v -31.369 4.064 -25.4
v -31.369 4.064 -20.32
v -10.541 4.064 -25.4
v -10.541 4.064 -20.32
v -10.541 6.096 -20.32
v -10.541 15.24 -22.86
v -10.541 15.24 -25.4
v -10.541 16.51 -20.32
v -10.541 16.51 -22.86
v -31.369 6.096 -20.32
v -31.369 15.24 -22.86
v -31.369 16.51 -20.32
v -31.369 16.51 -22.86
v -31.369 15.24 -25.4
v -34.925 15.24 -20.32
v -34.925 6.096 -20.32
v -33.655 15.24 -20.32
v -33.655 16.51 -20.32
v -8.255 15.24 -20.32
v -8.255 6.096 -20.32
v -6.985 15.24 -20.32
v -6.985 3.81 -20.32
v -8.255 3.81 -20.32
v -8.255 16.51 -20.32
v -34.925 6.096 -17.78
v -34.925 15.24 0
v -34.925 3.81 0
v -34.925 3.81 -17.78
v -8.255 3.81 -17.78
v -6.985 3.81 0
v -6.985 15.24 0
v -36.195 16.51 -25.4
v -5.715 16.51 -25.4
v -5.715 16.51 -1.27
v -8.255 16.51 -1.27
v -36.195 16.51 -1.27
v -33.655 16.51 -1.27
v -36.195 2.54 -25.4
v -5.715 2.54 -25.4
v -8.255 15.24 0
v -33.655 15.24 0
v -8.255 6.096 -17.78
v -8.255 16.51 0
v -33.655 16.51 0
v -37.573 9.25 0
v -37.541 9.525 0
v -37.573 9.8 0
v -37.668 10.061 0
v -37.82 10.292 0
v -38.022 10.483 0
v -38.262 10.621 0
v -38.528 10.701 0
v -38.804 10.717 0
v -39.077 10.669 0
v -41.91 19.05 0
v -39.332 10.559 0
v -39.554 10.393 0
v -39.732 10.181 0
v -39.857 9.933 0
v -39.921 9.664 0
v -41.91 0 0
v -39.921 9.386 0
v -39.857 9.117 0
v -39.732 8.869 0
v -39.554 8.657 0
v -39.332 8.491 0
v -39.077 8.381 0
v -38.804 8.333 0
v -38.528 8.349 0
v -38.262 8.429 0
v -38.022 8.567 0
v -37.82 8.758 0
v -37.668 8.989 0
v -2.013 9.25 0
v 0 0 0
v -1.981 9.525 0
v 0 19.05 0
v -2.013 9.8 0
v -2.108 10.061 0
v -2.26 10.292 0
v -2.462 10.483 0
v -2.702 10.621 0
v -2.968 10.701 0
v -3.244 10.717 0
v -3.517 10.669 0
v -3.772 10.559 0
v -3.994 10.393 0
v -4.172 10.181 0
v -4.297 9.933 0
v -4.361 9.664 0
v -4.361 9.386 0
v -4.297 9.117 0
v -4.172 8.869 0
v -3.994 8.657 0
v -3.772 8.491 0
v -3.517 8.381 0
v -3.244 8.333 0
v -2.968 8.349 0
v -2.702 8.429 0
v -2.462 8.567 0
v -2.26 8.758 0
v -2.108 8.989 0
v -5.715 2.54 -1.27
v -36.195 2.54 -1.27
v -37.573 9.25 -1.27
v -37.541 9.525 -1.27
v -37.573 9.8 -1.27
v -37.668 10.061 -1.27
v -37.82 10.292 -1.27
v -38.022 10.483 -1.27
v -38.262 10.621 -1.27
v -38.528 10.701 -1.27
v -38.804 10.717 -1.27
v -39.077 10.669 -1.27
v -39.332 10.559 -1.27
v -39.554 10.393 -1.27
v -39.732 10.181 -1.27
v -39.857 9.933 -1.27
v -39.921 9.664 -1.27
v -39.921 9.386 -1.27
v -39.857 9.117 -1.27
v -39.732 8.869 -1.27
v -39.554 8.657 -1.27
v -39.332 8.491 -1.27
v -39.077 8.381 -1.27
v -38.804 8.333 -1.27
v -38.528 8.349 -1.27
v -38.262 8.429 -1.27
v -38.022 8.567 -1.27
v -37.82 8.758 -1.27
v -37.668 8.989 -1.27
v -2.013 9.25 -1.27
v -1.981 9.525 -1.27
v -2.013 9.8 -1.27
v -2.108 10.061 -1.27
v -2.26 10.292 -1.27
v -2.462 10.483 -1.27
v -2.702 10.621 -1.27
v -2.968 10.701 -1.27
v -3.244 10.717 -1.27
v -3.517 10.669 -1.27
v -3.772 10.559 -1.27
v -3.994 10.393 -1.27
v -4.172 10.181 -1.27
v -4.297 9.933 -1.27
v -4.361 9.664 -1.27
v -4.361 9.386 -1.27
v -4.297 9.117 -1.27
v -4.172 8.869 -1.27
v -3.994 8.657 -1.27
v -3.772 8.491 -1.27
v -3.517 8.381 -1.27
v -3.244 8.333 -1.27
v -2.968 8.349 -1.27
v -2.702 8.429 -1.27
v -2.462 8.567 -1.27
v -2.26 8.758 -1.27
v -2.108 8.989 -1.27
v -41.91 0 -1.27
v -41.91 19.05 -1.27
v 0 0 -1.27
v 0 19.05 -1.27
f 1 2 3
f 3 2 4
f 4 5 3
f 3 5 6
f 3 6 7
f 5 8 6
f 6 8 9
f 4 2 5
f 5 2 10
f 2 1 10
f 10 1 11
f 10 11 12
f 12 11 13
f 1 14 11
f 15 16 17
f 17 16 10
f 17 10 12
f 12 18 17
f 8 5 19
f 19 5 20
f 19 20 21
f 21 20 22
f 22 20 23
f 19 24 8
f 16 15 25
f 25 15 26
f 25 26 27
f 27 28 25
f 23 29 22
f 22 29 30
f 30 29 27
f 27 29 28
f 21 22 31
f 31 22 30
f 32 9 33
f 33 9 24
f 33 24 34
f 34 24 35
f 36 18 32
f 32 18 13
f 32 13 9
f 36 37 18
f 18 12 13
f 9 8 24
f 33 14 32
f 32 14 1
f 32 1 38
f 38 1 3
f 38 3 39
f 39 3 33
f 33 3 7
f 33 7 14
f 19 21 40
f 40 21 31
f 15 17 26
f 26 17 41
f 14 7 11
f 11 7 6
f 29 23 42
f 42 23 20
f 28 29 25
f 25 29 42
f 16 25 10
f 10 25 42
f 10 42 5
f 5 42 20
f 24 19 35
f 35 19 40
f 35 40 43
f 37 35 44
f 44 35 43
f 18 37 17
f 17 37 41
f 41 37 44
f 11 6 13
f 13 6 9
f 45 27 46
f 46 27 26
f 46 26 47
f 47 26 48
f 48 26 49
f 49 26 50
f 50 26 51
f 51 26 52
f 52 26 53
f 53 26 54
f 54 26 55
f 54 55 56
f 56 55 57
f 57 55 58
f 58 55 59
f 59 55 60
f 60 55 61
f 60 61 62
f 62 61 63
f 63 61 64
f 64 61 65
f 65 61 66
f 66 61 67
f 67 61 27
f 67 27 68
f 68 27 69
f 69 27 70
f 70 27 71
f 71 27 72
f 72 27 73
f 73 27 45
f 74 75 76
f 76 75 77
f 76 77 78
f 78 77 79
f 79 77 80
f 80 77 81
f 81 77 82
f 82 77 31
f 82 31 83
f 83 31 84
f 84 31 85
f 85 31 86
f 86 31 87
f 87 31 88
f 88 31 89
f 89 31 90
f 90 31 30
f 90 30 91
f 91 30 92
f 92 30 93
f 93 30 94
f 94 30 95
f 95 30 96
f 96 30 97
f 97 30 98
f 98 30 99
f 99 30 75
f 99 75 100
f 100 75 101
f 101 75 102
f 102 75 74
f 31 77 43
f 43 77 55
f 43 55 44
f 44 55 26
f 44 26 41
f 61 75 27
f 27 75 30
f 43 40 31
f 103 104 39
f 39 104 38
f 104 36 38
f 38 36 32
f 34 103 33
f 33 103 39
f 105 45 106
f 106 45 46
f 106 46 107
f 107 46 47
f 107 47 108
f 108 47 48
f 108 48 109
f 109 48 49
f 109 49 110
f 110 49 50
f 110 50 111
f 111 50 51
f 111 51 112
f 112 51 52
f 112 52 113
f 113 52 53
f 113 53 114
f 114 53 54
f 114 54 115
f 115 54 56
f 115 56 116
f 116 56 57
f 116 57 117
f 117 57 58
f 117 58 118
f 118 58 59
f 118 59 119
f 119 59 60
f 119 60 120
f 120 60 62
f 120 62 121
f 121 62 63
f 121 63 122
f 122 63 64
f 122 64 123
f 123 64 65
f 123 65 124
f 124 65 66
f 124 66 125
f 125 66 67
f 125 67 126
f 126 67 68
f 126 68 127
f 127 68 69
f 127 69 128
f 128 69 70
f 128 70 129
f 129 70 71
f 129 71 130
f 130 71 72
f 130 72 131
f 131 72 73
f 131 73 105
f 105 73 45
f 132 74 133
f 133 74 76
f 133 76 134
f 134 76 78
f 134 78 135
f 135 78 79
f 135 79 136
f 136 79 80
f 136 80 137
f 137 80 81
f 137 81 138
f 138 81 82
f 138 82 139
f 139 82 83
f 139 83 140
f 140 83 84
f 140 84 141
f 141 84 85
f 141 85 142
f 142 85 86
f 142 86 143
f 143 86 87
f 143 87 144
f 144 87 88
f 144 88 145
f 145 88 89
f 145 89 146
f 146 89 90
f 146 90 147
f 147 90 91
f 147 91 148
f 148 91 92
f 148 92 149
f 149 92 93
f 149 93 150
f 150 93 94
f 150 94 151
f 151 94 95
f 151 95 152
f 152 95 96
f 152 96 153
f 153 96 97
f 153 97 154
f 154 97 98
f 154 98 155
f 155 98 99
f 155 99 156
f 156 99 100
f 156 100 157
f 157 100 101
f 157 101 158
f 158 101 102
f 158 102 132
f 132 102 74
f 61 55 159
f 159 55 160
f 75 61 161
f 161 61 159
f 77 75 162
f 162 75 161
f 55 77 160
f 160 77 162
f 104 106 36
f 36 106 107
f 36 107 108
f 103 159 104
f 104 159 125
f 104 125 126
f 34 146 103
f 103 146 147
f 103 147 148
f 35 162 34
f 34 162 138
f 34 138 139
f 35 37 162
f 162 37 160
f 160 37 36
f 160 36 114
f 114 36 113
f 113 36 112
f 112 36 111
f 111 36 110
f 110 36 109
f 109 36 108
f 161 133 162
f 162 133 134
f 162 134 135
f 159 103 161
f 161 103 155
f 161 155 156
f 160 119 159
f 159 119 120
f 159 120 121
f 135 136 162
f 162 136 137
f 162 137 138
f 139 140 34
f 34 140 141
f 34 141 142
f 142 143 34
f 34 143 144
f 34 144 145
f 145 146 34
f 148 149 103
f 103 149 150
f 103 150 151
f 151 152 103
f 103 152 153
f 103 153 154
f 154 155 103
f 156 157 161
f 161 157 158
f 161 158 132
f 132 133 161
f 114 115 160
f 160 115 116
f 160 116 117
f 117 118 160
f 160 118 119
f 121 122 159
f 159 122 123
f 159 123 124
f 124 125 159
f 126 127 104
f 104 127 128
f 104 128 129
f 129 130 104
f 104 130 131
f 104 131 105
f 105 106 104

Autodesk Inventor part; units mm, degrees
ref_plane "YZ Plane" through (0, 0, 0) normal (1, 0, 0) x (0, 1, 0)
ref_plane "XZ Plane" through (0, 0, 0) normal (0, 1, 0) x (-1, 0, 0)
ref_plane "XY Plane" through (0, 0, 0) normal (0, 0, 1) x (1, 0, 0)
sketch "Sketch1" plane through (0, 0, 0) normal (0, 0, 1) x (1, 0, 0)
  line L0 (0, 0) -> (-41.91, 0)
  line L1 (-41.91, 0) -> (-41.91, 19.05)
  line L2 (-41.91, 19.05) -> (0, 19.05)
  line L3 (0, 19.05) -> (0, 0)
  circle A0 centre (-38.735, 9.525) radius 1.1938
  circle A1 centre (-3.175, 9.525) radius 1.1938
  dimension "d0" = 41.91
  dimension "d1" = 19.05
  dimension "d2" = 2.3876
  dimension "d3" = 2.3876
  dimension "d4" = 3.175
  dimension "d5" = 3.175
  dimension "d6" = 9.525
  dimension "d7" = 9.525
extrude "Extrusion1" add sketch "Sketch1" against normal blind 1.27
sketch "Sketch2" plane through (0, 0, 0) normal (0, 0, 1) x (1, 0, 0)
  line L0 (-41.91, 19.05) -> (-41.91, 0) projected
  line L1 (-36.195, 16.51) -> (-5.715, 16.51)
  line L2 (-5.715, 16.51) -> (-5.715, 2.54)
  line L3 (-5.715, 2.54) -> (-36.195, 2.54)
  line L4 (-36.195, 2.54) -> (-36.195, 16.51)
  line L5 (-41.91, 0) -> (0, 0) projected
  line L6 (0, 0) -> (0, 19.05) projected
  dimension "d31" = 13.97
  dimension "d32" = 2.54
  dimension "d33" = 30.48
  dimension "d34" = 5.715
extrude "Extrusion2" add sketch "Sketch2" against normal blind 25.4
sketch "Sketch3" plane through (0, 0, -25.4) normal (0, 0, -1) x (-1, 0, 0)
  line L0 (6.985, 15.24) -> (34.925, 15.24)
  line L1 (34.925, 15.24) -> (34.925, 3.81)
  line L2 (34.925, 3.81) -> (6.985, 3.81)
  line L3 (6.985, 3.81) -> (6.985, 15.24)
  line L4 (5.715, 16.51) -> (5.715, 2.54) projected
  line L5 (36.195, 16.51) -> (5.715, 16.51) projected
  line L6 (36.195, 2.54) -> (36.195, 16.51) projected
  line L7 (5.715, 2.54) -> (36.195, 2.54) projected
  point P0 (0, 0)
  dimension "d35" = 1.27
  dimension "d36" = 1.27
  dimension "d37" = 1.27
  dimension "d38" = 1.27
extrude "Extrusion3" cut sketch "Sketch3" against normal blind 25.4 contours L0 L1 L2 L3
sketch "Sketch4" plane through (0, 0, 0) normal (0, 0, 1) x (1, 0, 0)
  line L0 (-34.925, 15.24) -> (-6.985, 15.24) projected
  line L1 (-36.195, 16.51) -> (-5.715, 16.51) projected
  line L2 (-33.655, 15.24) -> (-8.255, 15.24)
  line L3 (-8.255, 15.24) -> (-8.255, 16.51)
  line L4 (-8.255, 16.51) -> (-33.655, 16.51)
  line L5 (-33.655, 16.51) -> (-33.655, 15.24)
  line L6 (-34.925, 3.81) -> (-34.925, 15.24) projected
  line L7 (-6.985, 15.24) -> (-6.985, 3.81) projected
  dimension "d39" = 1.27
  dimension "d40" = 1.27
extrude "Extrusion4" cut sketch "Sketch4" against normal blind 22.86
sketch "Sketch7" plane through (-34.925, 3.81, -25.4) normal (0, 1, 0) x (1, 0, 0)
  line L0 (0, 0) -> (0, -25.4) projected
  line L1 (26.67, -5.08) -> (0, -5.08)
  line L2 (0, -5.08) -> (0, -7.62)
  line L3 (0, -7.62) -> (26.67, -7.62)
  line L4 (26.67, -7.62) -> (26.67, -5.08)
  line L5 (0, 0) -> (27.94, 0) projected
  line L6 (26.67, -2.54) -> (26.67, -24.13) projected
  point P0 (34.925, -25.4)
  point P1 (0, -5.08)
  dimension "d54" = 2.54
  dimension "d55" = 5.08
extrude "Extrusion6" add sketch "Sketch7" along normal blind 2.286
sketch "Sketch8" plane through (-34.925, 3.81, -25.4) normal (0, 1, 0) x (1, 0, 0)
  line L0 (28.0721, -5.08) -> (24.384, -5.08)
  line L1 (24.384, -5.08) -> (24.384, 0)
  line L2 (24.384, 0) -> (27.94, 0)
  line L3 (0, -5.08) -> (3.556, -5.08)
  line L4 (3.556, -5.08) -> (3.556, 0)
  line L5 (3.556, 0) -> (0, 0)
  line L6 (0, 0) -> (0, -5.08)
  line L7 (0, 0) -> (27.94, 0) projected
  line L8 (27.94, 0) -> (27.94, -25.4) projected
  line L9 (27.94, -5.08) -> (27.94, 0)
  point P0 (34.925, -25.4)
  dimension "d46" = 3.556
  dimension "d47" = 5.08
  dimension "d48" = 3.556
  dimension "d49" = 5.08
extrude "Extrusion7" add sketch "Sketch8" along normal blind 12.7
sketch "Sketch9" plane through (-31.369, 3.81, -25.4) normal (0, 1, 0) x (1, 0, 0)
  line L0 (0, -5.08) -> (23.114, -5.08) projected
  line L1 (0, 0) -> (20.828, 0) projected
  line L2 (20.828, -5.08) -> (20.828, 0)
  line L3 (20.828, 0) -> (0, 0)
  line L4 (0, 0) -> (0, -5.08)
  line L5 (20.828, -5.08) -> (20.828, 0) projected
  line L6 (0, 0) -> (0, -5.08) projected
  line L7 (20.828, -5.08) -> (0, -5.08)
  point P0 (31.369, -25.4)
  point P1 (20.828, -5.08)
  point P2 (-3.556, 0)
  point P3 (-3.556, -5.08)
  point P4 (24.384, 0)
extrude "Extrusion8" add sketch "Sketch9" along normal blind 0.254
equation "\"d3\" = d2"
equation "\"d5\" = d4"
equation "\"d6\" = 0.5 * d1"
equation "\"d7\" = d6"
equation "\"d36\" = d35"
equation "\"d37\" = d35"
equation "\"d38\" = d36"
equation "\"d49\" = d47"
properties part number "_3DPrint"
